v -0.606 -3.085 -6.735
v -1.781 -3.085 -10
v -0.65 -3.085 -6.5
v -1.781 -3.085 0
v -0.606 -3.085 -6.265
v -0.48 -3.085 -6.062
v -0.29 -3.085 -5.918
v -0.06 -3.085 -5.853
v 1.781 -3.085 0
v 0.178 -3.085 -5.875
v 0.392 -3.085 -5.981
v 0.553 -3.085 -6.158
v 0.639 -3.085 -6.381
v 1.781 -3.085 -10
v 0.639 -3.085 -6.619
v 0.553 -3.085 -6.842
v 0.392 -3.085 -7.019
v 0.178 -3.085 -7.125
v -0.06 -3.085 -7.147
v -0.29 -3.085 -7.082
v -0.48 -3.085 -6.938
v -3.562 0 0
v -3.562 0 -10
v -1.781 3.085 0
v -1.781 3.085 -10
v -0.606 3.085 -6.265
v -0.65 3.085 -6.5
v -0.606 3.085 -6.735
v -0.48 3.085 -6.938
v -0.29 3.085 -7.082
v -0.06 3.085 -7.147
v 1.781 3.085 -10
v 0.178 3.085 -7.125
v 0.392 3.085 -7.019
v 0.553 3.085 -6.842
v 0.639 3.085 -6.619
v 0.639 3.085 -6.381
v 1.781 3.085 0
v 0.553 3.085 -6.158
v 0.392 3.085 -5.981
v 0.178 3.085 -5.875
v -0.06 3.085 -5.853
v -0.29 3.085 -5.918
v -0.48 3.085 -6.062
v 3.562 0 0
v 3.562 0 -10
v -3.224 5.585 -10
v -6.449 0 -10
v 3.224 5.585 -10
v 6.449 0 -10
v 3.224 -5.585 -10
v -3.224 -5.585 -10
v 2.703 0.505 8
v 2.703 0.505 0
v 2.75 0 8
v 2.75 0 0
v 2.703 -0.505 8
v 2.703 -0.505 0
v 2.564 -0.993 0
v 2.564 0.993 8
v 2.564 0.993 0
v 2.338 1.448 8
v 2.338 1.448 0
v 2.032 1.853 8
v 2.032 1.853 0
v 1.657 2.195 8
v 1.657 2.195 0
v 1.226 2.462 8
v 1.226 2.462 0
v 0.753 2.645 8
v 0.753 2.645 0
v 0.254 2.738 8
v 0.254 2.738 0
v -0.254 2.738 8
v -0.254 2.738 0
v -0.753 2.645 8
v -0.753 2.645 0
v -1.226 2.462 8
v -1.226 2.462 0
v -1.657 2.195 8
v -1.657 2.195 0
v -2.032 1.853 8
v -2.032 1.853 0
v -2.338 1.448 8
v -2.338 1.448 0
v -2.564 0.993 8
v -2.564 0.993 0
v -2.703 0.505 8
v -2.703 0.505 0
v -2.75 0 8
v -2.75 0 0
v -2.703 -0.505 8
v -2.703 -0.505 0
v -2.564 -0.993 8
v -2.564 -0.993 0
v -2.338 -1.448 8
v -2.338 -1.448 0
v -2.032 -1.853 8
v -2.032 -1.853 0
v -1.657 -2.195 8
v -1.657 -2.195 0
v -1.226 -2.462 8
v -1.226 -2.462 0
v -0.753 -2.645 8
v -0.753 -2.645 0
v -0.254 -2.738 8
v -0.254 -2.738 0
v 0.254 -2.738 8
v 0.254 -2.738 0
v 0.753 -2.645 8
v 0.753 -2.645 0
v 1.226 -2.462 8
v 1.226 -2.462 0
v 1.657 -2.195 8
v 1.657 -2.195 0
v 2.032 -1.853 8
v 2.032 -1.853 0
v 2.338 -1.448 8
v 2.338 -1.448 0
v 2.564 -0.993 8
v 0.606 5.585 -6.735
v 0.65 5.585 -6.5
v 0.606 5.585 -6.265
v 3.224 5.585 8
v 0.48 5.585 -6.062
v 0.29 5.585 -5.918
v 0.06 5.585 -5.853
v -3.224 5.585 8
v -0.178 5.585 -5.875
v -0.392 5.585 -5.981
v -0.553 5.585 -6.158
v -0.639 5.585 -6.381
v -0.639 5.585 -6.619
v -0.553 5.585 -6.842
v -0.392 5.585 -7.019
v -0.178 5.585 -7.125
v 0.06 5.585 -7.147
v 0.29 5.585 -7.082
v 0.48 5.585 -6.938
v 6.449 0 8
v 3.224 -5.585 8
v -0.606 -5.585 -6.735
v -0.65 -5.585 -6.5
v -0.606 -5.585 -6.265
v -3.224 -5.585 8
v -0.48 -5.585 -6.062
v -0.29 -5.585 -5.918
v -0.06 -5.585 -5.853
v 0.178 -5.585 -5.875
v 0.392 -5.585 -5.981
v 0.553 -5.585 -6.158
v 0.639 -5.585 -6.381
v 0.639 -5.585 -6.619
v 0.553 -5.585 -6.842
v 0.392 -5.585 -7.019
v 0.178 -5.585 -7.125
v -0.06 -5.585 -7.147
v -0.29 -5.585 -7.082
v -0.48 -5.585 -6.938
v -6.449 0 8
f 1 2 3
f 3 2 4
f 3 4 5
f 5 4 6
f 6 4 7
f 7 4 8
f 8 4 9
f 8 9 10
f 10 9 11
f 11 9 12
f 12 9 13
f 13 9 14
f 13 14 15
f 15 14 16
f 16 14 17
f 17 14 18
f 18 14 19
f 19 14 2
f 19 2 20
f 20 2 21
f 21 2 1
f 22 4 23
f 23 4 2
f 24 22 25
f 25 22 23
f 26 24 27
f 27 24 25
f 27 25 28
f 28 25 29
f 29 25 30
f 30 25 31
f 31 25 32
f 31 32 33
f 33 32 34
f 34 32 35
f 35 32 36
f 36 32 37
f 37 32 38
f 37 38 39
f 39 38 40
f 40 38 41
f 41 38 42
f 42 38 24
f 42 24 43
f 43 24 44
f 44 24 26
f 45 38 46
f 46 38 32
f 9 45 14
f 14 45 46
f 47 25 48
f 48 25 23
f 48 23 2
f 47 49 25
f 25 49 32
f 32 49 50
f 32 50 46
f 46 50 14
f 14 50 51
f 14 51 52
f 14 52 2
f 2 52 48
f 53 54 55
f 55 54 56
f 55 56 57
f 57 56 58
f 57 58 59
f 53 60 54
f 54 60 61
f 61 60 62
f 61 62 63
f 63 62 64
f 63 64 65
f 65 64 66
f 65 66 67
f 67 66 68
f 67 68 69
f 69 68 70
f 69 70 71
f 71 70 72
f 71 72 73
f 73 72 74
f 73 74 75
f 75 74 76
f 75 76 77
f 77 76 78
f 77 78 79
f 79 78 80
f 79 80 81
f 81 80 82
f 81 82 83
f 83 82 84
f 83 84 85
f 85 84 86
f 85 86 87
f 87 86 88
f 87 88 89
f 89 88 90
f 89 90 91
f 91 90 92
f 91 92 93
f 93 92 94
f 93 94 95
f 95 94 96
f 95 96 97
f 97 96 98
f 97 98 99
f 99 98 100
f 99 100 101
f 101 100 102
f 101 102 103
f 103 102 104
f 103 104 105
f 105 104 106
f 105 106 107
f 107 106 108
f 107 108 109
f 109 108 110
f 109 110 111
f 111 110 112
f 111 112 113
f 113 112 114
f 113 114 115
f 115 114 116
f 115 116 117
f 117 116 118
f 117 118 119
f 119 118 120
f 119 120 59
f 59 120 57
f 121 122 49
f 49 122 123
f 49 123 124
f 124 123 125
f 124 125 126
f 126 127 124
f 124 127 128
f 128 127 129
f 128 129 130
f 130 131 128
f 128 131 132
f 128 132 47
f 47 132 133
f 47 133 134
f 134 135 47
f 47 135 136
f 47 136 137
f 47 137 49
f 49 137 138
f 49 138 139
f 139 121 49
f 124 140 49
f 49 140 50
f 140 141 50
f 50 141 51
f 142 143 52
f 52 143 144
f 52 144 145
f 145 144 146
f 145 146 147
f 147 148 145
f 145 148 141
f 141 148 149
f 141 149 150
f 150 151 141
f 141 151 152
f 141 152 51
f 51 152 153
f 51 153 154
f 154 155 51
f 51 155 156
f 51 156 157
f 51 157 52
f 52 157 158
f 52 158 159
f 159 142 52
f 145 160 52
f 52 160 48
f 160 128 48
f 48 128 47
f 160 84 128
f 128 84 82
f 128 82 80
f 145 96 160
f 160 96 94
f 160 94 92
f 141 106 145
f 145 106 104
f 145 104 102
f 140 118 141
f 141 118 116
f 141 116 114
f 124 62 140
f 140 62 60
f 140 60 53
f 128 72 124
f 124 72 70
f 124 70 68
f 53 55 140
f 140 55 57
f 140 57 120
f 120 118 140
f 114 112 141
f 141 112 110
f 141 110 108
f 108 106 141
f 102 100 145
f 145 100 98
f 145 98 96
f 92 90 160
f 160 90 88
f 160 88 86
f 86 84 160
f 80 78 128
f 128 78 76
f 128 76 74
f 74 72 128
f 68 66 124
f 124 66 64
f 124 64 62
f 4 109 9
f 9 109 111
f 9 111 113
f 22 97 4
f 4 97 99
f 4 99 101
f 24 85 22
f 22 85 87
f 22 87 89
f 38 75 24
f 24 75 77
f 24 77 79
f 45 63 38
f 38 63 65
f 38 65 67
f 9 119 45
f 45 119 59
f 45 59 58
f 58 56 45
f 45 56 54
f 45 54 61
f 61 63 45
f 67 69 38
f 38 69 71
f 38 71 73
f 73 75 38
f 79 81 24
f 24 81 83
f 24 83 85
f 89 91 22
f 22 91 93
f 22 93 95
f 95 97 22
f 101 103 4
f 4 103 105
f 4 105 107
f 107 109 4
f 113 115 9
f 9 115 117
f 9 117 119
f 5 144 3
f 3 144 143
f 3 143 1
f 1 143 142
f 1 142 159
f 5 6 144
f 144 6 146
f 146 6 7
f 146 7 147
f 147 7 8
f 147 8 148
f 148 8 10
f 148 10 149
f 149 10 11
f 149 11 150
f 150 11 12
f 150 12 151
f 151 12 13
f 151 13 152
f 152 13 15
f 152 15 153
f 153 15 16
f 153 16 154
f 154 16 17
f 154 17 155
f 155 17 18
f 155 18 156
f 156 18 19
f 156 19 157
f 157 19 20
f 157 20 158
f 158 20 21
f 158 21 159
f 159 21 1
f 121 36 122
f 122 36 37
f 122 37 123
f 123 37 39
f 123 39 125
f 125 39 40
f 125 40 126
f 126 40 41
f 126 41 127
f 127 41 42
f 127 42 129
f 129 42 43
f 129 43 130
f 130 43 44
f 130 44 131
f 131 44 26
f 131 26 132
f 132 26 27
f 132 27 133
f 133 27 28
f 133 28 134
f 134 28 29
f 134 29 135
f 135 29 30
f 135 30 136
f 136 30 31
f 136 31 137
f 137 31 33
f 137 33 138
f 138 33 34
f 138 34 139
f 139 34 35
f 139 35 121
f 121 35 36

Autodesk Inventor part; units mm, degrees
ref_plane "YZ Plane" through (0, 0, 0) normal (1, 0, 0) x (0, 1, 0)
ref_plane "XZ Plane" through (0, 0, 0) normal (0, 1, 0) x (-1, 0, 0)
ref_plane "XY Plane" through (0, 0, 0) normal (0, 0, 1) x (1, 0, 0)
sketch "Sketch1" plane through (0, 0, 0) normal (0, 0, 1) x (1, 0, 0)
  circle A0 centre (0, 0) radius 2.75
  line L0 (0, 0) -> (3.1, 0) construction
  line L1 (0, 0) -> (1.55, 2.6847) construction
  line L2 (0, 0) -> (-1.55, 2.6847) construction
  line L3 (0, 0) -> (-3.1, 0) construction
  line L4 (0, 0) -> (-1.55, -2.6847) construction
  line L5 (0, 0) -> (1.55, -2.6847) construction
  line L6 (-1.55, 2.6847) -> (1.55, 2.6847) construction
  line L7 (1.55, 2.6847) -> (3.1, 0) construction
  line L8 (3.1, 0) -> (1.55, -2.6847) construction
  line L9 (1.55, -2.6847) -> (-1.55, -2.6847) construction
  line L10 (-1.55, -2.6847) -> (-3.1, 0) construction
  line L11 (-3.1, 0) -> (-1.55, 2.6847) construction
  line L12 (3.5619, 0) -> (1.7809, 3.0847)
  line L13 (1.7809, 3.0847) -> (-1.7809, 3.0847)
  line L14 (-1.7809, 3.0847) -> (-3.5619, 0)
  line L15 (-3.5619, 0) -> (-1.7809, -3.0847)
  line L16 (-1.7809, -3.0847) -> (1.7809, -3.0847)
  line L17 (1.7809, -3.0847) -> (3.5619, 0)
  line L18 (3.2243, 5.5847) -> (6.4486, 0)
  line L19 (6.4486, 0) -> (3.2243, -5.5847)
  line L20 (3.2243, -5.5847) -> (-3.2243, -5.5847)
  line L21 (-3.2243, -5.5847) -> (-6.4486, 0)
  line L22 (-6.4486, 0) -> (-3.2243, 5.5847)
  line L23 (-3.2243, 5.5847) -> (3.2243, 5.5847)
  dimension "d0" = 5.5
  dimension "d2" = 3.1
  dimension "d5" = 360
  dimension "d7" = 0.4
  dimension "d8" = 2.5
extrude "Extrusion1" add sketch "Sketch1" along normal blind 8 contours L17 L16 L15 L14 L13 L12 | L18 L19 L20 L21 L22 L23
extrude "Extrusion2" add sketch "Sketch1" against normal blind 10 contours L18 L19 L20 L21 L22 L23
sketch "Sketch2" plane through (-3.2243, 5.5847, 8) normal (0, 1, 0) x (1, 0, 0)
  line L0 (0, 0) -> (0, 18) projected
  line L1 (0, 8) -> (6.4486, 8) projected
  line L2 (3.2243, 8) -> (3.2243, 18) construction
  line L3 (6.4486, 18) -> (0, 18) projected
  line L4 (6.4486, 18) -> (6.4486, 0) projected
  circle A0 centre (3.2243, 14.5) radius 0.65
  dimension "d13" = 1.3
  dimension "d14" = 6.5
extrude "Extrusion3" cut sketch "Sketch2" against normal blind 15 contours A0
properties part number "Acople_Motor_"
